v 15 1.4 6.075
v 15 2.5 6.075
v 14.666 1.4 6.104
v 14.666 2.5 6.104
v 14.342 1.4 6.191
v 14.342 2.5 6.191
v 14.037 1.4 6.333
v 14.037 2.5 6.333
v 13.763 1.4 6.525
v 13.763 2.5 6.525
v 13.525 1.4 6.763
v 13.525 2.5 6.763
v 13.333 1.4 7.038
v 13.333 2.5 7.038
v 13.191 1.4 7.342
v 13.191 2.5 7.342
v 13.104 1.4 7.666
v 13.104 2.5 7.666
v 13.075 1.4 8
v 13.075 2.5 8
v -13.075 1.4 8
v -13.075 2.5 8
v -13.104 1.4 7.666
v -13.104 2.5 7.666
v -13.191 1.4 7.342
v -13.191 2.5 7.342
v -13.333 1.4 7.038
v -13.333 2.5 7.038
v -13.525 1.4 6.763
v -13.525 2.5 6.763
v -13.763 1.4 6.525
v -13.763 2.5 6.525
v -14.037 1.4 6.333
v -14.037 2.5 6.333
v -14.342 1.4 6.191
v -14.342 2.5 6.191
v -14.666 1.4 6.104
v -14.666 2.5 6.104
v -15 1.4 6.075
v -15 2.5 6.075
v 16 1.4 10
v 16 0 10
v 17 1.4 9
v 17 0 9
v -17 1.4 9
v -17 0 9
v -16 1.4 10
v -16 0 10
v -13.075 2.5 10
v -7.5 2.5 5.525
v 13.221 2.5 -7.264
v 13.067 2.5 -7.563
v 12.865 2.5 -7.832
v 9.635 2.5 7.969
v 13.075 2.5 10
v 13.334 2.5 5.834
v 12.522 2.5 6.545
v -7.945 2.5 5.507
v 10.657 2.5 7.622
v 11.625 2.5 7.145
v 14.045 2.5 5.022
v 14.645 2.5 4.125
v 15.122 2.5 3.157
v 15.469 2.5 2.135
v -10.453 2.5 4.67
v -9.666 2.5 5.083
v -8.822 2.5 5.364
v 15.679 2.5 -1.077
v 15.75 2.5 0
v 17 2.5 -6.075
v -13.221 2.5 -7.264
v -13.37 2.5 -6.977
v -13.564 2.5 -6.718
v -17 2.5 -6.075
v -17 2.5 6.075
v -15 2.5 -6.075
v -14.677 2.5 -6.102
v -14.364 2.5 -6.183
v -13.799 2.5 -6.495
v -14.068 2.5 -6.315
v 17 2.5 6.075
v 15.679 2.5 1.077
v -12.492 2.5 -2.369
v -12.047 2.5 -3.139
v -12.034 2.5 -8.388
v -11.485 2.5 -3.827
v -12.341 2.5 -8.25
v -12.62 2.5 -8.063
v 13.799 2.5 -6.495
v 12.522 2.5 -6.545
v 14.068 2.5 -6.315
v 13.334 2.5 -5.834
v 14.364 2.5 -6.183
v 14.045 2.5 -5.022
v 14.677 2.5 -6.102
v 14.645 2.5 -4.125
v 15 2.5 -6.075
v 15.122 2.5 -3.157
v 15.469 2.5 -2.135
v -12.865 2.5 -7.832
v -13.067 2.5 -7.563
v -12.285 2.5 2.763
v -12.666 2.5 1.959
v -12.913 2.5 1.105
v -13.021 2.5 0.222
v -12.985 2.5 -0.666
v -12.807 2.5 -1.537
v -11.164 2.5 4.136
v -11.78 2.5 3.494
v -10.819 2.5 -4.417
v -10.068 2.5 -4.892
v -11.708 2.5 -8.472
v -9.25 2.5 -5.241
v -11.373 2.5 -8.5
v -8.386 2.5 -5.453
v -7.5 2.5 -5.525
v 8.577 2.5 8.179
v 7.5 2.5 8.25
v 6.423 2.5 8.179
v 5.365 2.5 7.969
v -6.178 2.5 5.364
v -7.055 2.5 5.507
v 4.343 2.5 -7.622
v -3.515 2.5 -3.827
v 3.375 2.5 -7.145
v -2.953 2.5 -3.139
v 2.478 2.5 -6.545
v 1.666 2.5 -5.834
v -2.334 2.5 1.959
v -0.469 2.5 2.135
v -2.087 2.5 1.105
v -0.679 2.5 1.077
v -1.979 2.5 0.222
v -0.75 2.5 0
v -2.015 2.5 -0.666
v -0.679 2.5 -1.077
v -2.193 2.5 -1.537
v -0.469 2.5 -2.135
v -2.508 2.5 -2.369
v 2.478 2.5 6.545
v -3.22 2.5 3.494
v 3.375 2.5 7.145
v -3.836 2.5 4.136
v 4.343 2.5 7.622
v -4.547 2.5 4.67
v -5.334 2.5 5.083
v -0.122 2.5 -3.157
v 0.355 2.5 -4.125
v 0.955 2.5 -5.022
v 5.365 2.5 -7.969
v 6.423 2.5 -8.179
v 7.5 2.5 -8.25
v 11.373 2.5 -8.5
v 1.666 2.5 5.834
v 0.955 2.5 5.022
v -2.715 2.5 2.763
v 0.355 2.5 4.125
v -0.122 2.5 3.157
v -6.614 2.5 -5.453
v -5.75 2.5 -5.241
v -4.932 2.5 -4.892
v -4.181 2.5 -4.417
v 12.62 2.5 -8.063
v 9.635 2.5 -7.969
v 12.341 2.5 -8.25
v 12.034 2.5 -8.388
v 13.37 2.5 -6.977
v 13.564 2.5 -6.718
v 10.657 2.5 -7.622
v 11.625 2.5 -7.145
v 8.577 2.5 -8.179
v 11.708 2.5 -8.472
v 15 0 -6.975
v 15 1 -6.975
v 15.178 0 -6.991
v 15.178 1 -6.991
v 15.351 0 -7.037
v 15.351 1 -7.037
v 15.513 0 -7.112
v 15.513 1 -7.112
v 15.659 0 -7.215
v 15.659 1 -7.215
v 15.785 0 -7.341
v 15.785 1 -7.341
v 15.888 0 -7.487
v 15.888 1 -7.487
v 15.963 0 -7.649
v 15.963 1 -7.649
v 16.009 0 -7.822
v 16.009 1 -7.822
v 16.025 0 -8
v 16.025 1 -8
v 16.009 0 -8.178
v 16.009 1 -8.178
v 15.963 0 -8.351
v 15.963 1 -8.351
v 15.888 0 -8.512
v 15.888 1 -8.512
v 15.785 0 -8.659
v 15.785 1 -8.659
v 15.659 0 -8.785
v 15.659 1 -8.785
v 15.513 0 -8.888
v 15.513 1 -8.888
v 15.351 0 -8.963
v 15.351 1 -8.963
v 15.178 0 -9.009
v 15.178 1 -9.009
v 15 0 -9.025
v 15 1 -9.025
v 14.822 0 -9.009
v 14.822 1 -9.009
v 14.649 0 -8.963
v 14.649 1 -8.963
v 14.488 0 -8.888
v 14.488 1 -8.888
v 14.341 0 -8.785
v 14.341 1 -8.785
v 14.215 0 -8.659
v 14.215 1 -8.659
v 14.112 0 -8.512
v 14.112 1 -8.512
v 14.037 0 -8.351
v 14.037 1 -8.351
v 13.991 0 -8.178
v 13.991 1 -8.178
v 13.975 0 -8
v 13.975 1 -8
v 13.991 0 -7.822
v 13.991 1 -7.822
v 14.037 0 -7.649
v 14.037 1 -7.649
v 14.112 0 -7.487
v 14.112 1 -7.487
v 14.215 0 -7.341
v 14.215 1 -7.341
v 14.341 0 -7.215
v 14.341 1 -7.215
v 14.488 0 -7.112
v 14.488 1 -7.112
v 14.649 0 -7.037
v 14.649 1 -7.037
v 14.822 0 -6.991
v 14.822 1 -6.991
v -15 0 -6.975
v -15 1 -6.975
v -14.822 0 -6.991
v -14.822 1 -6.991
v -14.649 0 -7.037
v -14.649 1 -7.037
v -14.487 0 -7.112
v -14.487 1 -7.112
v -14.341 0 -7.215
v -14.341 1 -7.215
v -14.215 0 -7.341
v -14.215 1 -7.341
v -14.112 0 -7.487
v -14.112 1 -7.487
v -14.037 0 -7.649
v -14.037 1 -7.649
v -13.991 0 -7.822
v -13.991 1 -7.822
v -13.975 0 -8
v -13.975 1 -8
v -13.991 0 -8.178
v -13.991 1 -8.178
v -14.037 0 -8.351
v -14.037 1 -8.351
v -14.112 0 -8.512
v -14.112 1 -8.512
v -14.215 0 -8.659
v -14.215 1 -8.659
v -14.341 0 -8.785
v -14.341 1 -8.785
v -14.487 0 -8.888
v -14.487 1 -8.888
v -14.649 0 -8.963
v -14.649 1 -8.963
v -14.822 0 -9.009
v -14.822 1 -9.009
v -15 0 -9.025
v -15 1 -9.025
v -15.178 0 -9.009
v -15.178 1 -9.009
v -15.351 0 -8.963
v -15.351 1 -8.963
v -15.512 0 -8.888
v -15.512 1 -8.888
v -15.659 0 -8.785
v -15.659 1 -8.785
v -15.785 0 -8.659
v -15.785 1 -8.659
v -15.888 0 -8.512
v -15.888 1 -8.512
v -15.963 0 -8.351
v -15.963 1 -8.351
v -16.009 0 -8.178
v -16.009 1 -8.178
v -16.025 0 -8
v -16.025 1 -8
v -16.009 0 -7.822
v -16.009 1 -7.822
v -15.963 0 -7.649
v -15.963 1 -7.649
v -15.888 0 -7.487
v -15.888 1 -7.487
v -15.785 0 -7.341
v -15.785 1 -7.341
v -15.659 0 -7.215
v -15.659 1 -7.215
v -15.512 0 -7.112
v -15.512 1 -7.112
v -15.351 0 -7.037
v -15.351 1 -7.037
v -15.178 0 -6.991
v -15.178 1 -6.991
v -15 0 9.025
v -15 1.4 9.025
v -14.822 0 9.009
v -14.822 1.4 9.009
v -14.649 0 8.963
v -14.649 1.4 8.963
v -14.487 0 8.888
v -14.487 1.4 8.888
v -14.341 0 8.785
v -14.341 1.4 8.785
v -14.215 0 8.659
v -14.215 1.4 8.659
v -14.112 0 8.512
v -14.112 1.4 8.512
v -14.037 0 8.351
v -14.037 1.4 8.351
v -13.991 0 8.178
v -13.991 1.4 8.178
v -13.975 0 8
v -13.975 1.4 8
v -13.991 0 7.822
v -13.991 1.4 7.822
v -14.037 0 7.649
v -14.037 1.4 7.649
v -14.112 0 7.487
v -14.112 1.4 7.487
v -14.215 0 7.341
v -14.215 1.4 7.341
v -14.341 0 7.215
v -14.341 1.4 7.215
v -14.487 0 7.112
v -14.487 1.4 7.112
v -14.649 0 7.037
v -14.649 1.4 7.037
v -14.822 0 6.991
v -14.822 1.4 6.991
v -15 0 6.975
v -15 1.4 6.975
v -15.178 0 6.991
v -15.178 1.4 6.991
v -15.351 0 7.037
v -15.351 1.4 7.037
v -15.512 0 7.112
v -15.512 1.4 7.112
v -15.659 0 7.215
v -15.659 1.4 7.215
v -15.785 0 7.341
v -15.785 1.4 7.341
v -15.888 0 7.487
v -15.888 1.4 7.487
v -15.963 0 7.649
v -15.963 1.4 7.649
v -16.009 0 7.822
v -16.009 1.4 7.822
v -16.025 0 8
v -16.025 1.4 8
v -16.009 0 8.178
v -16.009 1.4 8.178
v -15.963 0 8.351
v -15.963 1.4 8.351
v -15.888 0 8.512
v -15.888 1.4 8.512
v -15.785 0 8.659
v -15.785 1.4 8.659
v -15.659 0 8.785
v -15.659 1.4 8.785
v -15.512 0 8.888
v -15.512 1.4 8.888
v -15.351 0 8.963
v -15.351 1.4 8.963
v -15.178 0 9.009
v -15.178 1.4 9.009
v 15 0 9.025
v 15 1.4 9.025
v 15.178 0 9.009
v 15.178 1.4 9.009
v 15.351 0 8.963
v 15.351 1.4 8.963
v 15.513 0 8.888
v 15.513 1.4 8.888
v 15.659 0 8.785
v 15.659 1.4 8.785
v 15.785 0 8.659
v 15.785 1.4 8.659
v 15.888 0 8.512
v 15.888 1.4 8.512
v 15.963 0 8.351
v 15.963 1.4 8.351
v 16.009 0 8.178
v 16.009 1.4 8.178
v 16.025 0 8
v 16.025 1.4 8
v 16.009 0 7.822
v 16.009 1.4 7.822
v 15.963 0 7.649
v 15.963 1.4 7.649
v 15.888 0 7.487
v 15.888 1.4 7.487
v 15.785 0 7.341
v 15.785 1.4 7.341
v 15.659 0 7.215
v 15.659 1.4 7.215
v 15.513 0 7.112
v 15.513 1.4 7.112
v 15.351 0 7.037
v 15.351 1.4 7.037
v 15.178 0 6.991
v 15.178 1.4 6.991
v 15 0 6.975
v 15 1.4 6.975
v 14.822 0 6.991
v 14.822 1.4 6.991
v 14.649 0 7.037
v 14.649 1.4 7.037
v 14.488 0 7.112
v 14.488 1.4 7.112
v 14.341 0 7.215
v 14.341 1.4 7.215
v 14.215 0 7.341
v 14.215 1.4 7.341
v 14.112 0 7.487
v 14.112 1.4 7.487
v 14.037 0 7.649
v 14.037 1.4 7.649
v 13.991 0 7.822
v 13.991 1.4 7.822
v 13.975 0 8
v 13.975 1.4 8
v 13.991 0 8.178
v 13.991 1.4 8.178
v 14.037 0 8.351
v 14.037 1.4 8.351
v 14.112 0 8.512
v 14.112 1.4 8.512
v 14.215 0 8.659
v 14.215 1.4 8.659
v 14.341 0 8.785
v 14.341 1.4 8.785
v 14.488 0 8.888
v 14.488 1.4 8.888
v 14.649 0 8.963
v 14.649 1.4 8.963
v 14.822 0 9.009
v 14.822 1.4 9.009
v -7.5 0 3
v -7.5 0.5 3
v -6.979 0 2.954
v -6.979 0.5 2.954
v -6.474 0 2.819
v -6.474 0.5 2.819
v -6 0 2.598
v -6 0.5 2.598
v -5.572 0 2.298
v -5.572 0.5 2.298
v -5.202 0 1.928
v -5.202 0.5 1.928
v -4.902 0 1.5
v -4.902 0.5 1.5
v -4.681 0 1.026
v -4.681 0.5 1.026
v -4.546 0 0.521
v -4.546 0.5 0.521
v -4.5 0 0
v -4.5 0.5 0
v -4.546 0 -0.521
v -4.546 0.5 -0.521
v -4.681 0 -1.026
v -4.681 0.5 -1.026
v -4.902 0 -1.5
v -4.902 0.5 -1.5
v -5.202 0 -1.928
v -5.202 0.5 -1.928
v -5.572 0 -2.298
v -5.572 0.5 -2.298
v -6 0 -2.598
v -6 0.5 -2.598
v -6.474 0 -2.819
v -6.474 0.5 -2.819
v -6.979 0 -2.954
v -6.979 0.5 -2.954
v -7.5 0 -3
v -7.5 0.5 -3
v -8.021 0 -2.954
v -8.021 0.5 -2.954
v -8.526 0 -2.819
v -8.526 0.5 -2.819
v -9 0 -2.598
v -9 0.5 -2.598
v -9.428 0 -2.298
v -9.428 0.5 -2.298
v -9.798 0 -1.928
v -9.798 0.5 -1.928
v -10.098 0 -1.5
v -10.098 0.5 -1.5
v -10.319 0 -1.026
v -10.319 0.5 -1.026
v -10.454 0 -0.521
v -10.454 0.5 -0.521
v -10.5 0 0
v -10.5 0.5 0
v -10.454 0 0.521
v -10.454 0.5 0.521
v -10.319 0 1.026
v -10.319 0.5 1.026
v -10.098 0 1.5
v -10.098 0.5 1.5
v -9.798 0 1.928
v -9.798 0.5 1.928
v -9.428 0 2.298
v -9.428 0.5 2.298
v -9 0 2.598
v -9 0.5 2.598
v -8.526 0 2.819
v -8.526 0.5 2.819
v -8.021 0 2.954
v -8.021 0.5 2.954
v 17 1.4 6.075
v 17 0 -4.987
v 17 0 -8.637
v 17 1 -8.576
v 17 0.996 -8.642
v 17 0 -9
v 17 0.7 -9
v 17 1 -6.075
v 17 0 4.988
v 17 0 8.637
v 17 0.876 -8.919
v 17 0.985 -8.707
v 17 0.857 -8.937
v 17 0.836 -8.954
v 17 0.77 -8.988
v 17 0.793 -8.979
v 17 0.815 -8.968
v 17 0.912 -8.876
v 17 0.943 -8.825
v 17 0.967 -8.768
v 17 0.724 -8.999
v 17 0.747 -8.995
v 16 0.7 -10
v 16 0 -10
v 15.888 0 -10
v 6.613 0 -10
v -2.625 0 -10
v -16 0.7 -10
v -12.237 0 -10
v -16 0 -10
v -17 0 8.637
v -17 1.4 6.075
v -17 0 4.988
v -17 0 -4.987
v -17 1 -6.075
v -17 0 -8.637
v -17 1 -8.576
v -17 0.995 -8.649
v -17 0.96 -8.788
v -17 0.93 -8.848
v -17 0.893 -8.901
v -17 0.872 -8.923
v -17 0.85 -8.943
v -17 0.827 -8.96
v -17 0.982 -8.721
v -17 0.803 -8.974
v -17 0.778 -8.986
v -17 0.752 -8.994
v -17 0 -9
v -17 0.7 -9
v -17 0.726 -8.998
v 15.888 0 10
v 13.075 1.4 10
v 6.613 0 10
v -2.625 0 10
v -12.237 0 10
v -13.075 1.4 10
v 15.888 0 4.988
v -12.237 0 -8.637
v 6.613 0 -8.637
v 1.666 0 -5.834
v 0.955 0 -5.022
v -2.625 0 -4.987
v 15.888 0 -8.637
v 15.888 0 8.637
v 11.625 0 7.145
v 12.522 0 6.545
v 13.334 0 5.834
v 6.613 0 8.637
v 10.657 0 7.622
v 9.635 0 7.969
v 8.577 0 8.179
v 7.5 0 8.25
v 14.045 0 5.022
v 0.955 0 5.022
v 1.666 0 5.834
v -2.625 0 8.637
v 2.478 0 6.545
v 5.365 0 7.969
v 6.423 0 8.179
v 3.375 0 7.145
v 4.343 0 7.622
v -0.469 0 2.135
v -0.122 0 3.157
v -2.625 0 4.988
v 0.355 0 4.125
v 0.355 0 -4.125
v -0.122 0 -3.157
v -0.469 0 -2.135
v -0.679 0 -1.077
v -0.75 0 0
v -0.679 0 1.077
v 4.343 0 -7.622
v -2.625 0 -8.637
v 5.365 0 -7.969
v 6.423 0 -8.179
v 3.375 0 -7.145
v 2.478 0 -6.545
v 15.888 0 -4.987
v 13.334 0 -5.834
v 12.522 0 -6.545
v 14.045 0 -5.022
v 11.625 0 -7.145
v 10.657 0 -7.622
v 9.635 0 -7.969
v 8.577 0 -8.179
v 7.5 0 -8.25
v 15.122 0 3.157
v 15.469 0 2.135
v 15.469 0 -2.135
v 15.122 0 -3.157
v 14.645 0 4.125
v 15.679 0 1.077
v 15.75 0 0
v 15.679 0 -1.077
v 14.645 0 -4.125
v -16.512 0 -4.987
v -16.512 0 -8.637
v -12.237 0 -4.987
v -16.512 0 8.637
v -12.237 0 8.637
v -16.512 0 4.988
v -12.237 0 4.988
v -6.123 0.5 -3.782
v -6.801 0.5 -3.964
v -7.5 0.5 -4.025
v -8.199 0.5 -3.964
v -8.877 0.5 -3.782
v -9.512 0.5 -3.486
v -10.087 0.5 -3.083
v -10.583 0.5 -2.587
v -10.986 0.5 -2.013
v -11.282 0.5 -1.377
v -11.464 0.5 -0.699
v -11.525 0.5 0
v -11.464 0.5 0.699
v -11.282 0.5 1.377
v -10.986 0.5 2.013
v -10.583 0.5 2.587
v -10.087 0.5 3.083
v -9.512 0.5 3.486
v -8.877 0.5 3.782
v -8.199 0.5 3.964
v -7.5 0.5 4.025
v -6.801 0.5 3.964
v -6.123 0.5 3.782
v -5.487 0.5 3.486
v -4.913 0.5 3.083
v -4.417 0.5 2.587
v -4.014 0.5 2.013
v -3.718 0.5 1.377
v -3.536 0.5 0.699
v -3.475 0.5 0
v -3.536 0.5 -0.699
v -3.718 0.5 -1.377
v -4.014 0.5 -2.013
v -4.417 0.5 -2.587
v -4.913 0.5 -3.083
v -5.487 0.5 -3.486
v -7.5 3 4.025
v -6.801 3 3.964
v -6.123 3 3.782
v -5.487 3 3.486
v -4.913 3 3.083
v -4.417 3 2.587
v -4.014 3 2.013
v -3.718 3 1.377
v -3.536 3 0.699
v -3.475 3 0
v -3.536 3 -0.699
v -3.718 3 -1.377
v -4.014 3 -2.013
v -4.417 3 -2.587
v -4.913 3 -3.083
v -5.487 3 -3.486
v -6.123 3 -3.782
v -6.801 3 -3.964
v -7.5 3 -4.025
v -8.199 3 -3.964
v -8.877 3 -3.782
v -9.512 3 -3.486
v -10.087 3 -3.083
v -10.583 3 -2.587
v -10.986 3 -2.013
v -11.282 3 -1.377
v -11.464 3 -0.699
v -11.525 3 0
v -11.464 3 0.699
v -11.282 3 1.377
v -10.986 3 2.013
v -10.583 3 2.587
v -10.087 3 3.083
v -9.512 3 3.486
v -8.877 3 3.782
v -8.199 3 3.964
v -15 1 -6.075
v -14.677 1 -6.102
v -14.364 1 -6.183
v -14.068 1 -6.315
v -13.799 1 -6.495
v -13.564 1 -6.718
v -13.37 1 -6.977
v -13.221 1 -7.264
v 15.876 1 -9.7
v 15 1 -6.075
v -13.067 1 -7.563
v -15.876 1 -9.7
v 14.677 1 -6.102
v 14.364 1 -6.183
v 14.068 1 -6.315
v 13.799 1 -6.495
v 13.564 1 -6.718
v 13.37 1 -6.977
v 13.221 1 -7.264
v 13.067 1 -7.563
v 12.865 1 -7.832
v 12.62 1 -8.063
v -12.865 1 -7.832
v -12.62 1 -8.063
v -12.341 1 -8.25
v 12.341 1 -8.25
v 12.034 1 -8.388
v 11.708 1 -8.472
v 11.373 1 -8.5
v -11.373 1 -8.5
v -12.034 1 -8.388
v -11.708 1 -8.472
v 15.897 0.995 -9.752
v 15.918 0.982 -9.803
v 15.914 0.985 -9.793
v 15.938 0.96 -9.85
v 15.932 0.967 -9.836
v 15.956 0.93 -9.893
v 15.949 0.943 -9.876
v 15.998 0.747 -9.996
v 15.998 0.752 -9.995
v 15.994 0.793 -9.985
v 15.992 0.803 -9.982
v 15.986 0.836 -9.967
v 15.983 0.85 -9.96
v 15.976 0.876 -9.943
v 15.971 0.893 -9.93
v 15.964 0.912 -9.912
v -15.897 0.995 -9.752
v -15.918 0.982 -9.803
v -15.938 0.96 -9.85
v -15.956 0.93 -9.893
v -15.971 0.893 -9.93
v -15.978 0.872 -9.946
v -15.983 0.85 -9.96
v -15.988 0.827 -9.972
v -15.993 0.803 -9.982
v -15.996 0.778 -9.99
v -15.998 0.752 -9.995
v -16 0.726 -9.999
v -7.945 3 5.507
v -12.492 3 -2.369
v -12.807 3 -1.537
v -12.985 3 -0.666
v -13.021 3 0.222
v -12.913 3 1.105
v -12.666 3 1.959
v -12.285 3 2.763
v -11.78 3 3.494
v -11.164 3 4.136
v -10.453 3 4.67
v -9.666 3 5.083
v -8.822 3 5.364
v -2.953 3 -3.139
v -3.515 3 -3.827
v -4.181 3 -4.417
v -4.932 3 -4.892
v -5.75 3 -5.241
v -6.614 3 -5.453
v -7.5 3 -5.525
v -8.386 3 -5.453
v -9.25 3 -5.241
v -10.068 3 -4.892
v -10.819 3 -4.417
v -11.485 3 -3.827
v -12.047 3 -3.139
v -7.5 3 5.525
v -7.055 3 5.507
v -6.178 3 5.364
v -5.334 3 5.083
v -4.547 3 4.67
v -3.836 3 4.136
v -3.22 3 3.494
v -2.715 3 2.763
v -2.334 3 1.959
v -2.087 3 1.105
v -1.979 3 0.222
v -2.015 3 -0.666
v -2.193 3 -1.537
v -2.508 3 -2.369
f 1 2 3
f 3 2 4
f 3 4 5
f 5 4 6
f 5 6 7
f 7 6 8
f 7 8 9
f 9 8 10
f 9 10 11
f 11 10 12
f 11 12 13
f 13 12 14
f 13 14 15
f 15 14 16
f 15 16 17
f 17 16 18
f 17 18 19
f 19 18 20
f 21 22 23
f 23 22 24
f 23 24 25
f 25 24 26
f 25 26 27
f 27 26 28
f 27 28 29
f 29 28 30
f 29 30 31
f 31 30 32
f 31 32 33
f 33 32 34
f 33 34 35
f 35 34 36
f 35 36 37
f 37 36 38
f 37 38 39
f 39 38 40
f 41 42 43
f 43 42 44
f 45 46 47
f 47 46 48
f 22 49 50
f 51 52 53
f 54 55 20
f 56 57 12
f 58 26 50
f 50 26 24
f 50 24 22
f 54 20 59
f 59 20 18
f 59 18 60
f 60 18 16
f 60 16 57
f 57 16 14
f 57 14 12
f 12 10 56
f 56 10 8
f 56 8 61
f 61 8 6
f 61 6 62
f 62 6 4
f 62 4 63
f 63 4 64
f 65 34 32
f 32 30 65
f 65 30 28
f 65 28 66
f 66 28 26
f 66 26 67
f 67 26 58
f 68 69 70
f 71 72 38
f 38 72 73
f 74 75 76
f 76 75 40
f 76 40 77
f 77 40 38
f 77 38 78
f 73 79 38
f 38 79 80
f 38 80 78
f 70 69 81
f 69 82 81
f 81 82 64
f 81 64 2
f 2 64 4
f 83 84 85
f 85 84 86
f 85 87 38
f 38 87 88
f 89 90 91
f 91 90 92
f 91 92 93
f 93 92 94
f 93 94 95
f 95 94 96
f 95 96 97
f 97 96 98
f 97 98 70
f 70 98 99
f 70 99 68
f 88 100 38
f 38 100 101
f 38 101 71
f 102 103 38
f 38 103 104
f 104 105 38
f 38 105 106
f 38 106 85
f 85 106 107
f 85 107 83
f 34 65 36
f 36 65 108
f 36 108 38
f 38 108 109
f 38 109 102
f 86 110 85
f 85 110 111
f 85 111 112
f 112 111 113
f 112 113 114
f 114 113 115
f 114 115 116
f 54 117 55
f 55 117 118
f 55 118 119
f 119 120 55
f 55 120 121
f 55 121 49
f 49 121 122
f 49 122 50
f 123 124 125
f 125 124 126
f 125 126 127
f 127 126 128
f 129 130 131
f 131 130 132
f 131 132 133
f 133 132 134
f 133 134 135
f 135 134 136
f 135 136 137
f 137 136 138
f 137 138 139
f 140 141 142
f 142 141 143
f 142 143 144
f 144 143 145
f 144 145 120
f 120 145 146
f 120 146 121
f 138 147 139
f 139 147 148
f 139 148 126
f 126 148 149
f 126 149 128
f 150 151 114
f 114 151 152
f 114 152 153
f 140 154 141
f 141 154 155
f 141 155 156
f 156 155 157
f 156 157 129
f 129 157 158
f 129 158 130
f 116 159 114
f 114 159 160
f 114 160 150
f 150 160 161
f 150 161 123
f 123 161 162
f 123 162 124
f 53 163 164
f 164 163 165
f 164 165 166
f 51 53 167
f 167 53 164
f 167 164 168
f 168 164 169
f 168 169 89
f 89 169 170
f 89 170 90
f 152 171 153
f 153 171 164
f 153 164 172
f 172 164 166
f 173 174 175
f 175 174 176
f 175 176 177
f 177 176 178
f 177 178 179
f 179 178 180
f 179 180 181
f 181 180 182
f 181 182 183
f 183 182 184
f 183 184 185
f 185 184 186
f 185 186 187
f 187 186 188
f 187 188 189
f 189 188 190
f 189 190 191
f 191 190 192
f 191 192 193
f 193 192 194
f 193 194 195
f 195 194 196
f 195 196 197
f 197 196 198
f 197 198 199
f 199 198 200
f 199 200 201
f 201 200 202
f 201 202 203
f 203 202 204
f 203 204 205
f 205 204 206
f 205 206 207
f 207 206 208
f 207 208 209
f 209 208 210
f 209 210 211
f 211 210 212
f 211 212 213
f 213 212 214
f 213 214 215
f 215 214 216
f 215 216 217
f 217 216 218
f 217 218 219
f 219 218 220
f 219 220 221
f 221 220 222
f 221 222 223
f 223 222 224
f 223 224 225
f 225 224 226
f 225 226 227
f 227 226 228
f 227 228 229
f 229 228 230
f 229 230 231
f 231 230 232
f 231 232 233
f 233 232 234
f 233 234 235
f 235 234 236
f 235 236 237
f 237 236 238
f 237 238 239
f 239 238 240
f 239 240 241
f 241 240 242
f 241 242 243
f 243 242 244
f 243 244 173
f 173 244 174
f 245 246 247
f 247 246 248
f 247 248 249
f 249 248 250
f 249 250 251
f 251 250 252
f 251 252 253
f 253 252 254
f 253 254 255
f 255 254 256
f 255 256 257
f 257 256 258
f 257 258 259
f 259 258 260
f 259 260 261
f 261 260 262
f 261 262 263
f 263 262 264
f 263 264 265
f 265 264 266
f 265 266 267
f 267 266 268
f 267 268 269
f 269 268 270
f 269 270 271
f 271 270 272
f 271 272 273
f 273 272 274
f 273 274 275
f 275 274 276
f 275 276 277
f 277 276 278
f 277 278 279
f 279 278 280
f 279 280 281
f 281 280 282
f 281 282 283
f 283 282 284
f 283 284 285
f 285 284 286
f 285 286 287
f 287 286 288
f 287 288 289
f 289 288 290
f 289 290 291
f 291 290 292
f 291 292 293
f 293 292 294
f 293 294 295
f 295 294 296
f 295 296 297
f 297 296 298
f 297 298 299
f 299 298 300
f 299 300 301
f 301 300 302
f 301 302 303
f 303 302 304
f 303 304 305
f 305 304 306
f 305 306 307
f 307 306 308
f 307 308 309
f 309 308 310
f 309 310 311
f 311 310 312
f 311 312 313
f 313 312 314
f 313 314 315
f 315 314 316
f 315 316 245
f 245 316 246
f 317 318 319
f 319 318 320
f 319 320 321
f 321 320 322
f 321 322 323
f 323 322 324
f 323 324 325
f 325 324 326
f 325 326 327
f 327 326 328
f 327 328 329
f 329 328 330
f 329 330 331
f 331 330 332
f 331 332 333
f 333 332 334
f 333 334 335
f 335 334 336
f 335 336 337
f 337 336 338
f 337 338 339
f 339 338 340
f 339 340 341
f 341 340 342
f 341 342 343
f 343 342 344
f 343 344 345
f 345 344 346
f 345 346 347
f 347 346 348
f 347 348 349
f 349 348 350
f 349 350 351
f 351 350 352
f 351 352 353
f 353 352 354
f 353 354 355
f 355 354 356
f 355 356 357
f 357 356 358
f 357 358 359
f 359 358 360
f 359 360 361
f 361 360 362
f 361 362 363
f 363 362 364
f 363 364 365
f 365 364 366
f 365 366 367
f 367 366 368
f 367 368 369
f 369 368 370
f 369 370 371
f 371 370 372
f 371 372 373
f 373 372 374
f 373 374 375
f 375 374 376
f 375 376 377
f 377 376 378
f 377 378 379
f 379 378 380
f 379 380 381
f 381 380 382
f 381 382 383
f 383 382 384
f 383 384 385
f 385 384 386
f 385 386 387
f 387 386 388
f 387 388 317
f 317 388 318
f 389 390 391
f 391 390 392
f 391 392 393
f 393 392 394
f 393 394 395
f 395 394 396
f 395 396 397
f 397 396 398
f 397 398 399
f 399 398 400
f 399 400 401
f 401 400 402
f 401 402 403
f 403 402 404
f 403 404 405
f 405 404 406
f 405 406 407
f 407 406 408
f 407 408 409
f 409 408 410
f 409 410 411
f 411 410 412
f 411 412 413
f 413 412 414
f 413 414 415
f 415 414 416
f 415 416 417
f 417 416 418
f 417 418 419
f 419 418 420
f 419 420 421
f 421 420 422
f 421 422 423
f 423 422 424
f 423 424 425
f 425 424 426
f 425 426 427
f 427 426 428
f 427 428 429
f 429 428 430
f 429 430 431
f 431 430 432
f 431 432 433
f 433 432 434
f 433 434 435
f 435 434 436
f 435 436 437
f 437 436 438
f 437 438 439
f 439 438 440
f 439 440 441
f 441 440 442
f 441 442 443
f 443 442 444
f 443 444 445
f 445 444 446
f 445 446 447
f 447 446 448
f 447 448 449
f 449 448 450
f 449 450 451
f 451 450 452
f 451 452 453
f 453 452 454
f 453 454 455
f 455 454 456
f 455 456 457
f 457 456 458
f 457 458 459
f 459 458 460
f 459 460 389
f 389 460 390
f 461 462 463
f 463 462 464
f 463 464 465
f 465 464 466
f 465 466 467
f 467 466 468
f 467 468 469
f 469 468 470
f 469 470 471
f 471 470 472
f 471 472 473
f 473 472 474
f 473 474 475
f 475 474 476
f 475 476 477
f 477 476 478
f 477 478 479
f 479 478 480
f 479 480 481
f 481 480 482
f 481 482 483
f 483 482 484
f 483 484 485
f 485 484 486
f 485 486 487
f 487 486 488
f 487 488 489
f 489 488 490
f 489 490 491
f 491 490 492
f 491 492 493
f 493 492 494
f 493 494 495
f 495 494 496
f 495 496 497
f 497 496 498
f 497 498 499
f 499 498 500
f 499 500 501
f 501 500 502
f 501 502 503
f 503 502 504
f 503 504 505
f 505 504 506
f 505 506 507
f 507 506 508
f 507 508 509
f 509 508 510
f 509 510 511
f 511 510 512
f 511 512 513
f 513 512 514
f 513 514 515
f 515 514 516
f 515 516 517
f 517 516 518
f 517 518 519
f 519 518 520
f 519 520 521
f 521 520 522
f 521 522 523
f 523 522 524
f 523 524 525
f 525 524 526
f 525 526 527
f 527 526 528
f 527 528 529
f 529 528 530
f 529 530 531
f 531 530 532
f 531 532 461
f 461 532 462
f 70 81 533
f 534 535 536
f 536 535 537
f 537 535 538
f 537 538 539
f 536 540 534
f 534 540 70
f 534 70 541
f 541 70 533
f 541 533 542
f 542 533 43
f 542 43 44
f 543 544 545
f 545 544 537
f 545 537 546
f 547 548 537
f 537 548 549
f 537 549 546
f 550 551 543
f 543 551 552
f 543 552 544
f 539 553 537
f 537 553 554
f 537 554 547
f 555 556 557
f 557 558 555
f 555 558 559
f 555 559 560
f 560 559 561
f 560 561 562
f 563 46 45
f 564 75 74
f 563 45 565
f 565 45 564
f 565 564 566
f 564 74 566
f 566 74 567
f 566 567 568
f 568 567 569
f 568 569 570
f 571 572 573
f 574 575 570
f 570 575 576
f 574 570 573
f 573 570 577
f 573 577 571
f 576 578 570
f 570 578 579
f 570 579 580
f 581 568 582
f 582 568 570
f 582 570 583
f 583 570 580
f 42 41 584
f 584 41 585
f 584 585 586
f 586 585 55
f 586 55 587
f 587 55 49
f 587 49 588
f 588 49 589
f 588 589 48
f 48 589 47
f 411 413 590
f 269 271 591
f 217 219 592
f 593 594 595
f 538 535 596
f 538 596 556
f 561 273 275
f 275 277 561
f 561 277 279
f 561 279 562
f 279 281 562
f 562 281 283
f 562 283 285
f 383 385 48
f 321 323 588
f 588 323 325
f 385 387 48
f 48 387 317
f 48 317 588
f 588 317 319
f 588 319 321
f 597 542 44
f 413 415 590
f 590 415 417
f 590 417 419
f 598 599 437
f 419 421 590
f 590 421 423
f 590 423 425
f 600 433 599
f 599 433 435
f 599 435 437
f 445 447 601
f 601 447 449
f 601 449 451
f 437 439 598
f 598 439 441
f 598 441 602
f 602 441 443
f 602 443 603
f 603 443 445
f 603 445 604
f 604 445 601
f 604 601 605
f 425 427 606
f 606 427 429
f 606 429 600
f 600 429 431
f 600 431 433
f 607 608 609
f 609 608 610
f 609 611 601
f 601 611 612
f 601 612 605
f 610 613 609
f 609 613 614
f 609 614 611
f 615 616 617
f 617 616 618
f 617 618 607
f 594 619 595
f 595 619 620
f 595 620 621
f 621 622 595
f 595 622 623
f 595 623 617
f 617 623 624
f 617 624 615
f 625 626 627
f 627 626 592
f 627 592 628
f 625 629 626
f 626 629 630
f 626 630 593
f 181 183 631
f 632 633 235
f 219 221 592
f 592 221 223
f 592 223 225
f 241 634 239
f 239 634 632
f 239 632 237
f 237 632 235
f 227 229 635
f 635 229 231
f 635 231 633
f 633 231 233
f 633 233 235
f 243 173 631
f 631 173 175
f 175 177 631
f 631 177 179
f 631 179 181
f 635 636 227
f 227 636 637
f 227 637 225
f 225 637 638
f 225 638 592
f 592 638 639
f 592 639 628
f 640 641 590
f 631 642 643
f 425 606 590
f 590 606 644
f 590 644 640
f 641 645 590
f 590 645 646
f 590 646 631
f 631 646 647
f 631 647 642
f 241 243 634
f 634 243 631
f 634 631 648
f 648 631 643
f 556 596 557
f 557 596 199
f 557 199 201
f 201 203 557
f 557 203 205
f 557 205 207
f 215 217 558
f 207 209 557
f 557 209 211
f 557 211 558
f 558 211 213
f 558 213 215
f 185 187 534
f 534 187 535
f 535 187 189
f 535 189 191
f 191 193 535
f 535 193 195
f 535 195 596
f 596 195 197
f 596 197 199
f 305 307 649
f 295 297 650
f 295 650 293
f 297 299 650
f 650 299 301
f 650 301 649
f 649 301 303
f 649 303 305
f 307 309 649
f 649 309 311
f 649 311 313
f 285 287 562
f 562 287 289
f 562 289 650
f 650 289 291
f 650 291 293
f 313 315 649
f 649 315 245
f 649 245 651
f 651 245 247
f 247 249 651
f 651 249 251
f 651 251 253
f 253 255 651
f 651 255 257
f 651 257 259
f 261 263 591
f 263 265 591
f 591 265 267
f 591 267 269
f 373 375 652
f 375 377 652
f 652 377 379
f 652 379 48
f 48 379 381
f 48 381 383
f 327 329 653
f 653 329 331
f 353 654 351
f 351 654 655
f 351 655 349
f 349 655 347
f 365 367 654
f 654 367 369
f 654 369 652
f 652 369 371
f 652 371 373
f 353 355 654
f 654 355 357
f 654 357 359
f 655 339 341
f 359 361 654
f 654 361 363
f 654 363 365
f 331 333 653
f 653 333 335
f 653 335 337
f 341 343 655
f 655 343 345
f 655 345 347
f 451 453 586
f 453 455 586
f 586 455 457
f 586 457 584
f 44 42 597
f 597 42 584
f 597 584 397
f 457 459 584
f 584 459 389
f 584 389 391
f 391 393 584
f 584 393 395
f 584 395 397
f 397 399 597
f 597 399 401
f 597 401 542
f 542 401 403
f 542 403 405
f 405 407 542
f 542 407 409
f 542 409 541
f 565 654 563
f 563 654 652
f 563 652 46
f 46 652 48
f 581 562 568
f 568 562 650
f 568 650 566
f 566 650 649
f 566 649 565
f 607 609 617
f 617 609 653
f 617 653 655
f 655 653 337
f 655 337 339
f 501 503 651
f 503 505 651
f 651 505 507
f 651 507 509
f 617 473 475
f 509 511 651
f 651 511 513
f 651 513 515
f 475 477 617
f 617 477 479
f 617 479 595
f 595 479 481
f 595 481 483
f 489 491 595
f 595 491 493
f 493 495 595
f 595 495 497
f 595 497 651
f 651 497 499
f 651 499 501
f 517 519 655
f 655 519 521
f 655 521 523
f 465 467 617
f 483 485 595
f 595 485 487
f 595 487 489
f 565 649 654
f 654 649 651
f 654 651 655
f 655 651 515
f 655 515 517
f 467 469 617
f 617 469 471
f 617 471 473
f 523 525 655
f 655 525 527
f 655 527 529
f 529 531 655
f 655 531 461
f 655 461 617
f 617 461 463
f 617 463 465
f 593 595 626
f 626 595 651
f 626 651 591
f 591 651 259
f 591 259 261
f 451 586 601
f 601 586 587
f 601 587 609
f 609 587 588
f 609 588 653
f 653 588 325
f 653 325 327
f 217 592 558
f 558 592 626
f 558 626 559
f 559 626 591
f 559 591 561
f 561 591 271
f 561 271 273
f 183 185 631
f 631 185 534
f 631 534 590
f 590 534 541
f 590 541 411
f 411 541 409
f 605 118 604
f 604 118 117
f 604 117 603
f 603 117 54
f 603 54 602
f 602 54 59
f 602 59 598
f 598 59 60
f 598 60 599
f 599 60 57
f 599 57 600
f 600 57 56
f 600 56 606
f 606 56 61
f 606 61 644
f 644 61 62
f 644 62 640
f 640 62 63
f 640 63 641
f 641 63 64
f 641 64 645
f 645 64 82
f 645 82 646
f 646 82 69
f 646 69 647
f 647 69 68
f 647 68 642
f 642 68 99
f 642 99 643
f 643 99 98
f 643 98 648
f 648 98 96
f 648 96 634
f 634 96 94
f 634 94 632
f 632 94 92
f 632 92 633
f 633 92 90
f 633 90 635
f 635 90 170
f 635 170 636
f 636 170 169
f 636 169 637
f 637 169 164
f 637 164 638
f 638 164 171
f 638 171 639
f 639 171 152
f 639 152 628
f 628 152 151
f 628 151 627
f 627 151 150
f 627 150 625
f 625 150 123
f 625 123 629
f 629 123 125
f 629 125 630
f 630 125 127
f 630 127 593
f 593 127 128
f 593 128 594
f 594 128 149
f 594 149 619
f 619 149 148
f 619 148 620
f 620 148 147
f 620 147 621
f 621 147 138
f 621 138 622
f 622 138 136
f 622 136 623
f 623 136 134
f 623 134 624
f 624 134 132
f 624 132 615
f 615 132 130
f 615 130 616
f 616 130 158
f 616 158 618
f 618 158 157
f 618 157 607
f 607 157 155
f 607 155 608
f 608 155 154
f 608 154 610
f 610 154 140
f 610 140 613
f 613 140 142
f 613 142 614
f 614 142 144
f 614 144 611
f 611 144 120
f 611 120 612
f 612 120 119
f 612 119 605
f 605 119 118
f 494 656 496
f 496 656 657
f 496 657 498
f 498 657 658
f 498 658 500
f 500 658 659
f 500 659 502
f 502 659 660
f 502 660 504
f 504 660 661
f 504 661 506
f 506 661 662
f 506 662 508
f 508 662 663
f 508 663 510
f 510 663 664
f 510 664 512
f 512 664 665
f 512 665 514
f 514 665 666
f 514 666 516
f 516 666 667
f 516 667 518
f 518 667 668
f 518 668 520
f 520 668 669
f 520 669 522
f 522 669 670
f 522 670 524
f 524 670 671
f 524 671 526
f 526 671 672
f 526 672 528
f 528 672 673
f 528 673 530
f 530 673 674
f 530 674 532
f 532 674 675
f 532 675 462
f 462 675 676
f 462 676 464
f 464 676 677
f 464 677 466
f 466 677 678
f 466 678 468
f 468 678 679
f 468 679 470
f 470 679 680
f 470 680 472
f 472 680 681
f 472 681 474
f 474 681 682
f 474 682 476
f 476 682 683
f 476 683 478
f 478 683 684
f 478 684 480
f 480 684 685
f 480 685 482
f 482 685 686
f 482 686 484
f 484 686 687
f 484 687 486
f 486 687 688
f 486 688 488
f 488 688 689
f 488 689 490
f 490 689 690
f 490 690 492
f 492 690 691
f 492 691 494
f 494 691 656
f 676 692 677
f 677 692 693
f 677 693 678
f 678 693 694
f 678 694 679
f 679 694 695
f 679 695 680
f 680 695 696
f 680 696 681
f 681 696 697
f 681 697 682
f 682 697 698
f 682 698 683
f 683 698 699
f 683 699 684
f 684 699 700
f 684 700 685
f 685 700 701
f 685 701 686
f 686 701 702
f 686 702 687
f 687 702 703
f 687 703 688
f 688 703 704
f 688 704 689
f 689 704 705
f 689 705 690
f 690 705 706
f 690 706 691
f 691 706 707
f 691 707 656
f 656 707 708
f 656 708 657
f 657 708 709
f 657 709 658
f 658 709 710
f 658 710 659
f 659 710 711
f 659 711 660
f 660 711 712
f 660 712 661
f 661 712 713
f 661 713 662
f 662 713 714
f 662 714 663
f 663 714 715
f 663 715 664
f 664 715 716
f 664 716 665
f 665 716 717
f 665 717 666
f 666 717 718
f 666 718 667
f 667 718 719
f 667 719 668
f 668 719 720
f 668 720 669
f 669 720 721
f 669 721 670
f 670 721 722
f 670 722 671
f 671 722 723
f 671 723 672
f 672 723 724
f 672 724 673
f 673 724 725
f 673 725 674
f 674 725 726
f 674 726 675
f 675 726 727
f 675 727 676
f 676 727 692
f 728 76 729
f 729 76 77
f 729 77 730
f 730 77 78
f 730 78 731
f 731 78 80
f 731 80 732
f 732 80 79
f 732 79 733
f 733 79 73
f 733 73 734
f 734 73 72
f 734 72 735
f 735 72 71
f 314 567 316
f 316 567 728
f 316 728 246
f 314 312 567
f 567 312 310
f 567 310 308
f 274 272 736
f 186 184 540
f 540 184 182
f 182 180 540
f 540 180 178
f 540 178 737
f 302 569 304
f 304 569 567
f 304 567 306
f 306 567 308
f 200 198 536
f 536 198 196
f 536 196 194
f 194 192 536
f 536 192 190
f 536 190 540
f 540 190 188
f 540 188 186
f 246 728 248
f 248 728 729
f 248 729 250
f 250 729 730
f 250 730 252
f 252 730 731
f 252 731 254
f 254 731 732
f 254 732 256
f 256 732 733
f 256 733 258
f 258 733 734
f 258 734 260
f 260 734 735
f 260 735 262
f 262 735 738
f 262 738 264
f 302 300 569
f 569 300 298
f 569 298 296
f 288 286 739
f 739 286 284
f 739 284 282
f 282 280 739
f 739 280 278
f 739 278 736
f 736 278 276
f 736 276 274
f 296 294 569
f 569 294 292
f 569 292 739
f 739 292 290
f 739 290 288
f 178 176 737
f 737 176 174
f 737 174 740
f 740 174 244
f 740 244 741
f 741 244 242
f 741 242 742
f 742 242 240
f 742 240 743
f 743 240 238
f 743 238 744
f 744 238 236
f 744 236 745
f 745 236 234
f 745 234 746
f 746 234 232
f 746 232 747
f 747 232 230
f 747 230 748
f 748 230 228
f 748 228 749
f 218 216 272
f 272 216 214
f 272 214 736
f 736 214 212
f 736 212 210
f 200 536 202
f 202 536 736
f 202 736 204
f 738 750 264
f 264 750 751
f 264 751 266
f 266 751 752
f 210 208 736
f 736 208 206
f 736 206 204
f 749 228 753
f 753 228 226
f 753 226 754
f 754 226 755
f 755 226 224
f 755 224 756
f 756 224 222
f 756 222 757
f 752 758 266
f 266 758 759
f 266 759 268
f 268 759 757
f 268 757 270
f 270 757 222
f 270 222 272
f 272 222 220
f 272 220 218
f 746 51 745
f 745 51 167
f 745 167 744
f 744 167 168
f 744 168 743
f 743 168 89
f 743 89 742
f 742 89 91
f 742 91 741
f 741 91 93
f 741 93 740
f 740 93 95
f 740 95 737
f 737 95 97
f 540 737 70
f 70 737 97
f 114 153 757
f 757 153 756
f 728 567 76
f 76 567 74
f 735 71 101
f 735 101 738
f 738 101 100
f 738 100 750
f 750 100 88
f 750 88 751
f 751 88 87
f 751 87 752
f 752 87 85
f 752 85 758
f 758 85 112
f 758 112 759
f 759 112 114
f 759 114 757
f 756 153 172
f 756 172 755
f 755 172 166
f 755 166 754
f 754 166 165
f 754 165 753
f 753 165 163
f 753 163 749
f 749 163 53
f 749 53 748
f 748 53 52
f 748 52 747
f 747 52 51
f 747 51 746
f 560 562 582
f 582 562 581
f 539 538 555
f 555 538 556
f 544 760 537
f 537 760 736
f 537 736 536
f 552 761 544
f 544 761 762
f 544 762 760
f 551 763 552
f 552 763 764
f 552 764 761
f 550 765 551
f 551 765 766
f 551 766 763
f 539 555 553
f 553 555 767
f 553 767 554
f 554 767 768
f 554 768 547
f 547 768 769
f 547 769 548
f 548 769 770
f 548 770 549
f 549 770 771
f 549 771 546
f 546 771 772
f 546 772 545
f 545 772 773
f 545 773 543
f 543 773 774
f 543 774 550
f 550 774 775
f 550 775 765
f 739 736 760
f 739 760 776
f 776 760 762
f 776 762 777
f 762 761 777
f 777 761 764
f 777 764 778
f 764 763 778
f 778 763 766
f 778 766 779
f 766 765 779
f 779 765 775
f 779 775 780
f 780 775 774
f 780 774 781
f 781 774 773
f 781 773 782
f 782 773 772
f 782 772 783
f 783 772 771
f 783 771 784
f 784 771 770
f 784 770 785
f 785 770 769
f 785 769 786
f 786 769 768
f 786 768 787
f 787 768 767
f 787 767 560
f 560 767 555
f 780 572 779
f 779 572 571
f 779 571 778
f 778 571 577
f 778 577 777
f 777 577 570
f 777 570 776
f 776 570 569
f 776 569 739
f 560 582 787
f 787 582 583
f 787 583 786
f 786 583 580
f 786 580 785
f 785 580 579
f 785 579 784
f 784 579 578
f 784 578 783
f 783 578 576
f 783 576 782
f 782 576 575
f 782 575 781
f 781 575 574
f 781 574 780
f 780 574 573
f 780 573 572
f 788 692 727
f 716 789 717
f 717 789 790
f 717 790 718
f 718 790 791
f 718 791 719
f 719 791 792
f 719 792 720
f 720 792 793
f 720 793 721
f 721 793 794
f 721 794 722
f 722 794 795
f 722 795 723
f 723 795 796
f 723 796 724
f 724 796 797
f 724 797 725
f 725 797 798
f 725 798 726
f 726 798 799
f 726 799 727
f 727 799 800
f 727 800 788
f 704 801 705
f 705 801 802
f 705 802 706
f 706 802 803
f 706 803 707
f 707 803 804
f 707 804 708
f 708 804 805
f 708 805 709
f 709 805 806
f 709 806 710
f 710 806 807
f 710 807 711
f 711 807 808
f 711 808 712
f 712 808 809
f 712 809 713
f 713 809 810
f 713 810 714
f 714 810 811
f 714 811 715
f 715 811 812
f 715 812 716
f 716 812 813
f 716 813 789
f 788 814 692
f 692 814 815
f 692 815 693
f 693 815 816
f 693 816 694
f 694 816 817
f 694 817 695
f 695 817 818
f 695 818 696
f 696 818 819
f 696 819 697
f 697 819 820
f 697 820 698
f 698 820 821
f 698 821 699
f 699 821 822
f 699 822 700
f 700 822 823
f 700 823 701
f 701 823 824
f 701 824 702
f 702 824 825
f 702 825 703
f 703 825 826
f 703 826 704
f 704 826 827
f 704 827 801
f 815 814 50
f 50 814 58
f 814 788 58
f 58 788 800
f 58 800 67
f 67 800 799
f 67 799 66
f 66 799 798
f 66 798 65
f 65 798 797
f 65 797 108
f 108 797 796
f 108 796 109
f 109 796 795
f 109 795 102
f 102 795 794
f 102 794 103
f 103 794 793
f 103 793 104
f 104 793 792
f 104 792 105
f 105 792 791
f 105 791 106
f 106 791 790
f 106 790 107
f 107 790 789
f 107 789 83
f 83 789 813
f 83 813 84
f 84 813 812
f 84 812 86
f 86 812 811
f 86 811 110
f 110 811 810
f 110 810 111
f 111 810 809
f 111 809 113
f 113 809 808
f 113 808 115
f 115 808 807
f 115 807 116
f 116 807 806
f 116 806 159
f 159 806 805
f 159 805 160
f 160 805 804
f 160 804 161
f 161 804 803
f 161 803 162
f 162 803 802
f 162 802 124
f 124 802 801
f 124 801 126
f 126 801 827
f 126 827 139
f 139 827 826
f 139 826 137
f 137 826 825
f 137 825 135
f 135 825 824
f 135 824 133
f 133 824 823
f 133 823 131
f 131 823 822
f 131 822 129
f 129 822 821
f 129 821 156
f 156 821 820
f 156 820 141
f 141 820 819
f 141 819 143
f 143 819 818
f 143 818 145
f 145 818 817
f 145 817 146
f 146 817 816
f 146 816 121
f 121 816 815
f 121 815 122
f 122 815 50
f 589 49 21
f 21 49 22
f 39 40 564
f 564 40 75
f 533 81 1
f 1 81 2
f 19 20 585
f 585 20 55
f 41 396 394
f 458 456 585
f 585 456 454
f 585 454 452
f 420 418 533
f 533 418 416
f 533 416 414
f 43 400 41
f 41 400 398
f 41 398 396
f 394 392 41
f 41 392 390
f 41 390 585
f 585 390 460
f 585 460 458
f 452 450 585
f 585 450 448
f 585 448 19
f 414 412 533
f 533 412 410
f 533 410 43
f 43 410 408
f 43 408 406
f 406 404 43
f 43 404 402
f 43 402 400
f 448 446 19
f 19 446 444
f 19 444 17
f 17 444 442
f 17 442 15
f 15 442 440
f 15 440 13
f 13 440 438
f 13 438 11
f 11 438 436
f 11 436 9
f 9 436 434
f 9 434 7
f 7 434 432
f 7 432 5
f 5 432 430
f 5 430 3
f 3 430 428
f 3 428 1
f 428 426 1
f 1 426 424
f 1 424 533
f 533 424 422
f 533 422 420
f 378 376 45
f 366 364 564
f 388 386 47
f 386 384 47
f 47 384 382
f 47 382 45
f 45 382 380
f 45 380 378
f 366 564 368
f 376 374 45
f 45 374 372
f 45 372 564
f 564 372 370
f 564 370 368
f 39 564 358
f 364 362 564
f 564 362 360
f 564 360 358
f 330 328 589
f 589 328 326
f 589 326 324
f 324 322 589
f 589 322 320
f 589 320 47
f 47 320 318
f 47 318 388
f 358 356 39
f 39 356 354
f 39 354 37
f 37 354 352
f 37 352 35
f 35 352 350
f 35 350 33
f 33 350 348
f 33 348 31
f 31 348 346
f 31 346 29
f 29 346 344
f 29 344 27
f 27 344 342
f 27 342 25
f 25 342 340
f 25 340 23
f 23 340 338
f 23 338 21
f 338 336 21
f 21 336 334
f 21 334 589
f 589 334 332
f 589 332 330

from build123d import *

# Parameters (mm, degrees)
SKETCH1_W           = 34
SKETCH1_H           = 20
BOSS_EXTRUDE1_DEPTH = 2.5
SKETCH2_R           = 3
SKETCH2_R_2         = 8.25
CUT_EXTRUDE1_DEPTH  = 5
SKETCH5_R           = 4.025
CUT_EXTRUDE4_DEPTH  = 2
SKETCH3_R           = 1.025
CUT_EXTRUDE2_DEPTH  = 4
SKETCH4_R           = 1.925
CUT_EXTRUDE3_DEPTH  = 1.5
CUT_EXTRUDE5_DEPTH  = 1.5
FILLET1_R           = 2
CHAMFER1_SIZE       = 1
FILLET2_R           = 0.3
SKETCH7_R           = 5.525
SKETCH7_R_2         = 4.025
BOSS_EXTRUDE2_DEPTH = 0.5
CUT_EXTRUDE6_DEPTH  = 1.5
SKETCH9_R           = 1.025
BOSS_EXTRUDE3_DEPTH = 0.4


with BuildPart() as part:
    # Sketch1 → Boss-Extrude1 (new body)
    with BuildSketch(Plane(origin=(0, 0, 0), x_dir=(1, 0, 0), z_dir=(0, 1, 0))):
        Rectangle(SKETCH1_W, SKETCH1_H)
    extrude(amount=BOSS_EXTRUDE1_DEPTH)

    # Sketch2 → Cut-Extrude1 (cut)
    with BuildSketch(Plane(origin=(0, 2.5, 0), x_dir=(1, 0, 0), z_dir=(0, 1, 0))):
        with Locations((-7.5, 0)):
            Circle(SKETCH2_R)
        with Locations((7.5, 0)):
            Circle(SKETCH2_R_2)
    extrude(amount=-CUT_EXTRUDE1_DEPTH, mode=Mode.SUBTRACT)

    # Sketch5 → Cut-Extrude4 (cut)
    with BuildSketch(Plane(origin=(0, 2.5, 0), x_dir=(1, 0, 0), z_dir=(0, 1, 0))):
        with Locations((-7.5, 0)):
            Circle(SKETCH5_R)
    extrude(amount=-CUT_EXTRUDE4_DEPTH, mode=Mode.SUBTRACT)

    # Sketch3 → Cut-Extrude2 (cut)
    with BuildSketch(Plane(origin=(0, 2.5, 0), x_dir=(1, 0, 0), z_dir=(0, 1, 0))):
        with Locations((15, 8)):
            Circle(SKETCH3_R)
        with Locations((-15, 8)):
            Circle(SKETCH3_R)
        with Locations((-15, -8)):
            Circle(SKETCH3_R)
        with Locations((15, -8)):
            Circle(SKETCH3_R)
    extrude(amount=-CUT_EXTRUDE2_DEPTH, mode=Mode.SUBTRACT)

    # Sketch4 → Cut-Extrude3 (cut)
    with BuildSketch(Plane(origin=(0, 2.5, 0), x_dir=(1, 0, 0), z_dir=(0, 1, 0))):
        with Locations((-15, 8)):
            Circle(SKETCH4_R)
        with Locations((-15, -8)):
            Circle(SKETCH4_R)
        with Locations((15, 8)):
            Circle(SKETCH4_R)
        with Locations((15, -8)):
            Circle(SKETCH4_R)
    extrude(amount=-CUT_EXTRUDE3_DEPTH, mode=Mode.SUBTRACT)

    # Sketch6 → Cut-Extrude5 (cut)
    with BuildSketch(Plane(origin=(0, 2.5, 0), x_dir=(1, 0, 0), z_dir=(0, 1, 0))):
        with BuildLine():
            Line((17, 10), (-17, 10))
            Line((-17, 10), (-17, 6.075))
            Line((-17, 6.075), (-15, 6.075))
            ThreePointArc((-15, 6.075), (-13.472236111, 6.828862732), (-13.141068855, 8.5))
            Line((-13.141068855, 8.5), (13.141068855, 8.5))
            ThreePointArc((13.141068855, 8.5), (13.472236111, 6.828862732), (15, 6.075))
            Line((15, 6.075), (17, 6.075))
            Line((17, 6.075), (17, 10))
        make_face()
    extrude(amount=-CUT_EXTRUDE5_DEPTH, mode=Mode.SUBTRACT)

    # Fillet1
    fillet1_edges = [part.edges().sort_by_distance(p)[0] for p in [
        (13.141068855, 1.75, -8.5),
        (-13.141068855, 1.75, -8.5),
    ]]
    fillet(fillet1_edges, radius=FILLET1_R)

    # Chamfer1
    chamfer1_edges = [part.edges().sort_by_distance(p)[0] for p in [
        (17, 1.25, 10),
        (-17, 1.25, 10),
        (-17, 0.5, -10),
        (17, 0.5, -10),
    ]]
    chamfer(chamfer1_edges, length=CHAMFER1_SIZE)

    # Fillet2
    fillet2_edges = [part.edges().sort_by_distance(p)[0] for p in [
        (0, 1, -10),
        (16.5, 1, -9.5),
        (-16.5, 1, -9.5),
    ]]
    fillet(fillet2_edges, radius=FILLET2_R)

    # Sketch7 → Boss-Extrude2 (add)
    with BuildSketch(Plane(origin=(0, 2.5, 0), x_dir=(1, 0, 0), z_dir=(0, 1, 0))):
        with Locations((-7.5, 0)):
            Circle(SKETCH7_R)
        with Locations((-7.5, 0)):
            Circle(SKETCH7_R_2, mode=Mode.SUBTRACT)
    extrude(amount=BOSS_EXTRUDE2_DEPTH)

    # Sketch8 → Cut-Extrude6 (cut)
    with BuildSketch(Plane(origin=(0, 2.5, 0), x_dir=(1, 0, 0), z_dir=(0, 1, 0))):
        with BuildLine():
            Line((-15, -6.075), (-17, -6.075))
            Line((-17, -6.075), (-17, -9))
            Line((-17, -9), (-16, -10))
            Line((-16, -10), (-13.075, -10))
            Line((-13.075, -10), (-13.075, -8))
            ThreePointArc((-13.075, -8), (-16.361180554, -9.361180554), (-15, -6.075))
        make_face()
        with BuildLine():
            Line((13.075, -10), (13.075, -8))
            ThreePointArc((13.075, -8), (16.361180554, -9.361180554), (15, -6.075))
            Line((15, -6.075), (17, -6.075))
            Line((17, -6.075), (17, -9))
            Line((17, -9), (16, -10))
            Line((16, -10), (13.075, -10))
        make_face()
    extrude(amount=-CUT_EXTRUDE6_DEPTH, mode=Mode.SUBTRACT)

    # Sketch9 → Boss-Extrude3 (add)
    with BuildSketch(Plane(origin=(0, 1, 0), x_dir=(1, 0, 0), z_dir=(0, 1, 0))):
        with BuildLine():
            Line((13.075, -8), (13.075, -10))
            Line((13.075, -10), (16, -10))
            Line((16, -10), (17, -9))
            Line((17, -9), (17, -6.075))
            Line((17, -6.075), (15, -6.075))
            ThreePointArc((15, -6.075), (13.638819446, -6.638819446), (13.075, -8))
        make_face()
        with Locations((15, -8)):
            Circle(SKETCH9_R, mode=Mode.SUBTRACT)
        with BuildLine():
            Line((-15, -6.075), (-17, -6.075))
            Line((-17, -6.075), (-17, -9))
            Line((-17, -9), (-16, -10))
            Line((-16, -10), (-13.075, -10))
            Line((-13.075, -10), (-13.075, -8))
            ThreePointArc((-13.075, -8), (-13.638819446, -6.638819446), (-15, -6.075))
        make_face()
        with Locations((-15, -8)):
            Circle(SKETCH9_R, mode=Mode.SUBTRACT)
    extrude(amount=BOSS_EXTRUDE3_DEPTH)


solid = part.part
